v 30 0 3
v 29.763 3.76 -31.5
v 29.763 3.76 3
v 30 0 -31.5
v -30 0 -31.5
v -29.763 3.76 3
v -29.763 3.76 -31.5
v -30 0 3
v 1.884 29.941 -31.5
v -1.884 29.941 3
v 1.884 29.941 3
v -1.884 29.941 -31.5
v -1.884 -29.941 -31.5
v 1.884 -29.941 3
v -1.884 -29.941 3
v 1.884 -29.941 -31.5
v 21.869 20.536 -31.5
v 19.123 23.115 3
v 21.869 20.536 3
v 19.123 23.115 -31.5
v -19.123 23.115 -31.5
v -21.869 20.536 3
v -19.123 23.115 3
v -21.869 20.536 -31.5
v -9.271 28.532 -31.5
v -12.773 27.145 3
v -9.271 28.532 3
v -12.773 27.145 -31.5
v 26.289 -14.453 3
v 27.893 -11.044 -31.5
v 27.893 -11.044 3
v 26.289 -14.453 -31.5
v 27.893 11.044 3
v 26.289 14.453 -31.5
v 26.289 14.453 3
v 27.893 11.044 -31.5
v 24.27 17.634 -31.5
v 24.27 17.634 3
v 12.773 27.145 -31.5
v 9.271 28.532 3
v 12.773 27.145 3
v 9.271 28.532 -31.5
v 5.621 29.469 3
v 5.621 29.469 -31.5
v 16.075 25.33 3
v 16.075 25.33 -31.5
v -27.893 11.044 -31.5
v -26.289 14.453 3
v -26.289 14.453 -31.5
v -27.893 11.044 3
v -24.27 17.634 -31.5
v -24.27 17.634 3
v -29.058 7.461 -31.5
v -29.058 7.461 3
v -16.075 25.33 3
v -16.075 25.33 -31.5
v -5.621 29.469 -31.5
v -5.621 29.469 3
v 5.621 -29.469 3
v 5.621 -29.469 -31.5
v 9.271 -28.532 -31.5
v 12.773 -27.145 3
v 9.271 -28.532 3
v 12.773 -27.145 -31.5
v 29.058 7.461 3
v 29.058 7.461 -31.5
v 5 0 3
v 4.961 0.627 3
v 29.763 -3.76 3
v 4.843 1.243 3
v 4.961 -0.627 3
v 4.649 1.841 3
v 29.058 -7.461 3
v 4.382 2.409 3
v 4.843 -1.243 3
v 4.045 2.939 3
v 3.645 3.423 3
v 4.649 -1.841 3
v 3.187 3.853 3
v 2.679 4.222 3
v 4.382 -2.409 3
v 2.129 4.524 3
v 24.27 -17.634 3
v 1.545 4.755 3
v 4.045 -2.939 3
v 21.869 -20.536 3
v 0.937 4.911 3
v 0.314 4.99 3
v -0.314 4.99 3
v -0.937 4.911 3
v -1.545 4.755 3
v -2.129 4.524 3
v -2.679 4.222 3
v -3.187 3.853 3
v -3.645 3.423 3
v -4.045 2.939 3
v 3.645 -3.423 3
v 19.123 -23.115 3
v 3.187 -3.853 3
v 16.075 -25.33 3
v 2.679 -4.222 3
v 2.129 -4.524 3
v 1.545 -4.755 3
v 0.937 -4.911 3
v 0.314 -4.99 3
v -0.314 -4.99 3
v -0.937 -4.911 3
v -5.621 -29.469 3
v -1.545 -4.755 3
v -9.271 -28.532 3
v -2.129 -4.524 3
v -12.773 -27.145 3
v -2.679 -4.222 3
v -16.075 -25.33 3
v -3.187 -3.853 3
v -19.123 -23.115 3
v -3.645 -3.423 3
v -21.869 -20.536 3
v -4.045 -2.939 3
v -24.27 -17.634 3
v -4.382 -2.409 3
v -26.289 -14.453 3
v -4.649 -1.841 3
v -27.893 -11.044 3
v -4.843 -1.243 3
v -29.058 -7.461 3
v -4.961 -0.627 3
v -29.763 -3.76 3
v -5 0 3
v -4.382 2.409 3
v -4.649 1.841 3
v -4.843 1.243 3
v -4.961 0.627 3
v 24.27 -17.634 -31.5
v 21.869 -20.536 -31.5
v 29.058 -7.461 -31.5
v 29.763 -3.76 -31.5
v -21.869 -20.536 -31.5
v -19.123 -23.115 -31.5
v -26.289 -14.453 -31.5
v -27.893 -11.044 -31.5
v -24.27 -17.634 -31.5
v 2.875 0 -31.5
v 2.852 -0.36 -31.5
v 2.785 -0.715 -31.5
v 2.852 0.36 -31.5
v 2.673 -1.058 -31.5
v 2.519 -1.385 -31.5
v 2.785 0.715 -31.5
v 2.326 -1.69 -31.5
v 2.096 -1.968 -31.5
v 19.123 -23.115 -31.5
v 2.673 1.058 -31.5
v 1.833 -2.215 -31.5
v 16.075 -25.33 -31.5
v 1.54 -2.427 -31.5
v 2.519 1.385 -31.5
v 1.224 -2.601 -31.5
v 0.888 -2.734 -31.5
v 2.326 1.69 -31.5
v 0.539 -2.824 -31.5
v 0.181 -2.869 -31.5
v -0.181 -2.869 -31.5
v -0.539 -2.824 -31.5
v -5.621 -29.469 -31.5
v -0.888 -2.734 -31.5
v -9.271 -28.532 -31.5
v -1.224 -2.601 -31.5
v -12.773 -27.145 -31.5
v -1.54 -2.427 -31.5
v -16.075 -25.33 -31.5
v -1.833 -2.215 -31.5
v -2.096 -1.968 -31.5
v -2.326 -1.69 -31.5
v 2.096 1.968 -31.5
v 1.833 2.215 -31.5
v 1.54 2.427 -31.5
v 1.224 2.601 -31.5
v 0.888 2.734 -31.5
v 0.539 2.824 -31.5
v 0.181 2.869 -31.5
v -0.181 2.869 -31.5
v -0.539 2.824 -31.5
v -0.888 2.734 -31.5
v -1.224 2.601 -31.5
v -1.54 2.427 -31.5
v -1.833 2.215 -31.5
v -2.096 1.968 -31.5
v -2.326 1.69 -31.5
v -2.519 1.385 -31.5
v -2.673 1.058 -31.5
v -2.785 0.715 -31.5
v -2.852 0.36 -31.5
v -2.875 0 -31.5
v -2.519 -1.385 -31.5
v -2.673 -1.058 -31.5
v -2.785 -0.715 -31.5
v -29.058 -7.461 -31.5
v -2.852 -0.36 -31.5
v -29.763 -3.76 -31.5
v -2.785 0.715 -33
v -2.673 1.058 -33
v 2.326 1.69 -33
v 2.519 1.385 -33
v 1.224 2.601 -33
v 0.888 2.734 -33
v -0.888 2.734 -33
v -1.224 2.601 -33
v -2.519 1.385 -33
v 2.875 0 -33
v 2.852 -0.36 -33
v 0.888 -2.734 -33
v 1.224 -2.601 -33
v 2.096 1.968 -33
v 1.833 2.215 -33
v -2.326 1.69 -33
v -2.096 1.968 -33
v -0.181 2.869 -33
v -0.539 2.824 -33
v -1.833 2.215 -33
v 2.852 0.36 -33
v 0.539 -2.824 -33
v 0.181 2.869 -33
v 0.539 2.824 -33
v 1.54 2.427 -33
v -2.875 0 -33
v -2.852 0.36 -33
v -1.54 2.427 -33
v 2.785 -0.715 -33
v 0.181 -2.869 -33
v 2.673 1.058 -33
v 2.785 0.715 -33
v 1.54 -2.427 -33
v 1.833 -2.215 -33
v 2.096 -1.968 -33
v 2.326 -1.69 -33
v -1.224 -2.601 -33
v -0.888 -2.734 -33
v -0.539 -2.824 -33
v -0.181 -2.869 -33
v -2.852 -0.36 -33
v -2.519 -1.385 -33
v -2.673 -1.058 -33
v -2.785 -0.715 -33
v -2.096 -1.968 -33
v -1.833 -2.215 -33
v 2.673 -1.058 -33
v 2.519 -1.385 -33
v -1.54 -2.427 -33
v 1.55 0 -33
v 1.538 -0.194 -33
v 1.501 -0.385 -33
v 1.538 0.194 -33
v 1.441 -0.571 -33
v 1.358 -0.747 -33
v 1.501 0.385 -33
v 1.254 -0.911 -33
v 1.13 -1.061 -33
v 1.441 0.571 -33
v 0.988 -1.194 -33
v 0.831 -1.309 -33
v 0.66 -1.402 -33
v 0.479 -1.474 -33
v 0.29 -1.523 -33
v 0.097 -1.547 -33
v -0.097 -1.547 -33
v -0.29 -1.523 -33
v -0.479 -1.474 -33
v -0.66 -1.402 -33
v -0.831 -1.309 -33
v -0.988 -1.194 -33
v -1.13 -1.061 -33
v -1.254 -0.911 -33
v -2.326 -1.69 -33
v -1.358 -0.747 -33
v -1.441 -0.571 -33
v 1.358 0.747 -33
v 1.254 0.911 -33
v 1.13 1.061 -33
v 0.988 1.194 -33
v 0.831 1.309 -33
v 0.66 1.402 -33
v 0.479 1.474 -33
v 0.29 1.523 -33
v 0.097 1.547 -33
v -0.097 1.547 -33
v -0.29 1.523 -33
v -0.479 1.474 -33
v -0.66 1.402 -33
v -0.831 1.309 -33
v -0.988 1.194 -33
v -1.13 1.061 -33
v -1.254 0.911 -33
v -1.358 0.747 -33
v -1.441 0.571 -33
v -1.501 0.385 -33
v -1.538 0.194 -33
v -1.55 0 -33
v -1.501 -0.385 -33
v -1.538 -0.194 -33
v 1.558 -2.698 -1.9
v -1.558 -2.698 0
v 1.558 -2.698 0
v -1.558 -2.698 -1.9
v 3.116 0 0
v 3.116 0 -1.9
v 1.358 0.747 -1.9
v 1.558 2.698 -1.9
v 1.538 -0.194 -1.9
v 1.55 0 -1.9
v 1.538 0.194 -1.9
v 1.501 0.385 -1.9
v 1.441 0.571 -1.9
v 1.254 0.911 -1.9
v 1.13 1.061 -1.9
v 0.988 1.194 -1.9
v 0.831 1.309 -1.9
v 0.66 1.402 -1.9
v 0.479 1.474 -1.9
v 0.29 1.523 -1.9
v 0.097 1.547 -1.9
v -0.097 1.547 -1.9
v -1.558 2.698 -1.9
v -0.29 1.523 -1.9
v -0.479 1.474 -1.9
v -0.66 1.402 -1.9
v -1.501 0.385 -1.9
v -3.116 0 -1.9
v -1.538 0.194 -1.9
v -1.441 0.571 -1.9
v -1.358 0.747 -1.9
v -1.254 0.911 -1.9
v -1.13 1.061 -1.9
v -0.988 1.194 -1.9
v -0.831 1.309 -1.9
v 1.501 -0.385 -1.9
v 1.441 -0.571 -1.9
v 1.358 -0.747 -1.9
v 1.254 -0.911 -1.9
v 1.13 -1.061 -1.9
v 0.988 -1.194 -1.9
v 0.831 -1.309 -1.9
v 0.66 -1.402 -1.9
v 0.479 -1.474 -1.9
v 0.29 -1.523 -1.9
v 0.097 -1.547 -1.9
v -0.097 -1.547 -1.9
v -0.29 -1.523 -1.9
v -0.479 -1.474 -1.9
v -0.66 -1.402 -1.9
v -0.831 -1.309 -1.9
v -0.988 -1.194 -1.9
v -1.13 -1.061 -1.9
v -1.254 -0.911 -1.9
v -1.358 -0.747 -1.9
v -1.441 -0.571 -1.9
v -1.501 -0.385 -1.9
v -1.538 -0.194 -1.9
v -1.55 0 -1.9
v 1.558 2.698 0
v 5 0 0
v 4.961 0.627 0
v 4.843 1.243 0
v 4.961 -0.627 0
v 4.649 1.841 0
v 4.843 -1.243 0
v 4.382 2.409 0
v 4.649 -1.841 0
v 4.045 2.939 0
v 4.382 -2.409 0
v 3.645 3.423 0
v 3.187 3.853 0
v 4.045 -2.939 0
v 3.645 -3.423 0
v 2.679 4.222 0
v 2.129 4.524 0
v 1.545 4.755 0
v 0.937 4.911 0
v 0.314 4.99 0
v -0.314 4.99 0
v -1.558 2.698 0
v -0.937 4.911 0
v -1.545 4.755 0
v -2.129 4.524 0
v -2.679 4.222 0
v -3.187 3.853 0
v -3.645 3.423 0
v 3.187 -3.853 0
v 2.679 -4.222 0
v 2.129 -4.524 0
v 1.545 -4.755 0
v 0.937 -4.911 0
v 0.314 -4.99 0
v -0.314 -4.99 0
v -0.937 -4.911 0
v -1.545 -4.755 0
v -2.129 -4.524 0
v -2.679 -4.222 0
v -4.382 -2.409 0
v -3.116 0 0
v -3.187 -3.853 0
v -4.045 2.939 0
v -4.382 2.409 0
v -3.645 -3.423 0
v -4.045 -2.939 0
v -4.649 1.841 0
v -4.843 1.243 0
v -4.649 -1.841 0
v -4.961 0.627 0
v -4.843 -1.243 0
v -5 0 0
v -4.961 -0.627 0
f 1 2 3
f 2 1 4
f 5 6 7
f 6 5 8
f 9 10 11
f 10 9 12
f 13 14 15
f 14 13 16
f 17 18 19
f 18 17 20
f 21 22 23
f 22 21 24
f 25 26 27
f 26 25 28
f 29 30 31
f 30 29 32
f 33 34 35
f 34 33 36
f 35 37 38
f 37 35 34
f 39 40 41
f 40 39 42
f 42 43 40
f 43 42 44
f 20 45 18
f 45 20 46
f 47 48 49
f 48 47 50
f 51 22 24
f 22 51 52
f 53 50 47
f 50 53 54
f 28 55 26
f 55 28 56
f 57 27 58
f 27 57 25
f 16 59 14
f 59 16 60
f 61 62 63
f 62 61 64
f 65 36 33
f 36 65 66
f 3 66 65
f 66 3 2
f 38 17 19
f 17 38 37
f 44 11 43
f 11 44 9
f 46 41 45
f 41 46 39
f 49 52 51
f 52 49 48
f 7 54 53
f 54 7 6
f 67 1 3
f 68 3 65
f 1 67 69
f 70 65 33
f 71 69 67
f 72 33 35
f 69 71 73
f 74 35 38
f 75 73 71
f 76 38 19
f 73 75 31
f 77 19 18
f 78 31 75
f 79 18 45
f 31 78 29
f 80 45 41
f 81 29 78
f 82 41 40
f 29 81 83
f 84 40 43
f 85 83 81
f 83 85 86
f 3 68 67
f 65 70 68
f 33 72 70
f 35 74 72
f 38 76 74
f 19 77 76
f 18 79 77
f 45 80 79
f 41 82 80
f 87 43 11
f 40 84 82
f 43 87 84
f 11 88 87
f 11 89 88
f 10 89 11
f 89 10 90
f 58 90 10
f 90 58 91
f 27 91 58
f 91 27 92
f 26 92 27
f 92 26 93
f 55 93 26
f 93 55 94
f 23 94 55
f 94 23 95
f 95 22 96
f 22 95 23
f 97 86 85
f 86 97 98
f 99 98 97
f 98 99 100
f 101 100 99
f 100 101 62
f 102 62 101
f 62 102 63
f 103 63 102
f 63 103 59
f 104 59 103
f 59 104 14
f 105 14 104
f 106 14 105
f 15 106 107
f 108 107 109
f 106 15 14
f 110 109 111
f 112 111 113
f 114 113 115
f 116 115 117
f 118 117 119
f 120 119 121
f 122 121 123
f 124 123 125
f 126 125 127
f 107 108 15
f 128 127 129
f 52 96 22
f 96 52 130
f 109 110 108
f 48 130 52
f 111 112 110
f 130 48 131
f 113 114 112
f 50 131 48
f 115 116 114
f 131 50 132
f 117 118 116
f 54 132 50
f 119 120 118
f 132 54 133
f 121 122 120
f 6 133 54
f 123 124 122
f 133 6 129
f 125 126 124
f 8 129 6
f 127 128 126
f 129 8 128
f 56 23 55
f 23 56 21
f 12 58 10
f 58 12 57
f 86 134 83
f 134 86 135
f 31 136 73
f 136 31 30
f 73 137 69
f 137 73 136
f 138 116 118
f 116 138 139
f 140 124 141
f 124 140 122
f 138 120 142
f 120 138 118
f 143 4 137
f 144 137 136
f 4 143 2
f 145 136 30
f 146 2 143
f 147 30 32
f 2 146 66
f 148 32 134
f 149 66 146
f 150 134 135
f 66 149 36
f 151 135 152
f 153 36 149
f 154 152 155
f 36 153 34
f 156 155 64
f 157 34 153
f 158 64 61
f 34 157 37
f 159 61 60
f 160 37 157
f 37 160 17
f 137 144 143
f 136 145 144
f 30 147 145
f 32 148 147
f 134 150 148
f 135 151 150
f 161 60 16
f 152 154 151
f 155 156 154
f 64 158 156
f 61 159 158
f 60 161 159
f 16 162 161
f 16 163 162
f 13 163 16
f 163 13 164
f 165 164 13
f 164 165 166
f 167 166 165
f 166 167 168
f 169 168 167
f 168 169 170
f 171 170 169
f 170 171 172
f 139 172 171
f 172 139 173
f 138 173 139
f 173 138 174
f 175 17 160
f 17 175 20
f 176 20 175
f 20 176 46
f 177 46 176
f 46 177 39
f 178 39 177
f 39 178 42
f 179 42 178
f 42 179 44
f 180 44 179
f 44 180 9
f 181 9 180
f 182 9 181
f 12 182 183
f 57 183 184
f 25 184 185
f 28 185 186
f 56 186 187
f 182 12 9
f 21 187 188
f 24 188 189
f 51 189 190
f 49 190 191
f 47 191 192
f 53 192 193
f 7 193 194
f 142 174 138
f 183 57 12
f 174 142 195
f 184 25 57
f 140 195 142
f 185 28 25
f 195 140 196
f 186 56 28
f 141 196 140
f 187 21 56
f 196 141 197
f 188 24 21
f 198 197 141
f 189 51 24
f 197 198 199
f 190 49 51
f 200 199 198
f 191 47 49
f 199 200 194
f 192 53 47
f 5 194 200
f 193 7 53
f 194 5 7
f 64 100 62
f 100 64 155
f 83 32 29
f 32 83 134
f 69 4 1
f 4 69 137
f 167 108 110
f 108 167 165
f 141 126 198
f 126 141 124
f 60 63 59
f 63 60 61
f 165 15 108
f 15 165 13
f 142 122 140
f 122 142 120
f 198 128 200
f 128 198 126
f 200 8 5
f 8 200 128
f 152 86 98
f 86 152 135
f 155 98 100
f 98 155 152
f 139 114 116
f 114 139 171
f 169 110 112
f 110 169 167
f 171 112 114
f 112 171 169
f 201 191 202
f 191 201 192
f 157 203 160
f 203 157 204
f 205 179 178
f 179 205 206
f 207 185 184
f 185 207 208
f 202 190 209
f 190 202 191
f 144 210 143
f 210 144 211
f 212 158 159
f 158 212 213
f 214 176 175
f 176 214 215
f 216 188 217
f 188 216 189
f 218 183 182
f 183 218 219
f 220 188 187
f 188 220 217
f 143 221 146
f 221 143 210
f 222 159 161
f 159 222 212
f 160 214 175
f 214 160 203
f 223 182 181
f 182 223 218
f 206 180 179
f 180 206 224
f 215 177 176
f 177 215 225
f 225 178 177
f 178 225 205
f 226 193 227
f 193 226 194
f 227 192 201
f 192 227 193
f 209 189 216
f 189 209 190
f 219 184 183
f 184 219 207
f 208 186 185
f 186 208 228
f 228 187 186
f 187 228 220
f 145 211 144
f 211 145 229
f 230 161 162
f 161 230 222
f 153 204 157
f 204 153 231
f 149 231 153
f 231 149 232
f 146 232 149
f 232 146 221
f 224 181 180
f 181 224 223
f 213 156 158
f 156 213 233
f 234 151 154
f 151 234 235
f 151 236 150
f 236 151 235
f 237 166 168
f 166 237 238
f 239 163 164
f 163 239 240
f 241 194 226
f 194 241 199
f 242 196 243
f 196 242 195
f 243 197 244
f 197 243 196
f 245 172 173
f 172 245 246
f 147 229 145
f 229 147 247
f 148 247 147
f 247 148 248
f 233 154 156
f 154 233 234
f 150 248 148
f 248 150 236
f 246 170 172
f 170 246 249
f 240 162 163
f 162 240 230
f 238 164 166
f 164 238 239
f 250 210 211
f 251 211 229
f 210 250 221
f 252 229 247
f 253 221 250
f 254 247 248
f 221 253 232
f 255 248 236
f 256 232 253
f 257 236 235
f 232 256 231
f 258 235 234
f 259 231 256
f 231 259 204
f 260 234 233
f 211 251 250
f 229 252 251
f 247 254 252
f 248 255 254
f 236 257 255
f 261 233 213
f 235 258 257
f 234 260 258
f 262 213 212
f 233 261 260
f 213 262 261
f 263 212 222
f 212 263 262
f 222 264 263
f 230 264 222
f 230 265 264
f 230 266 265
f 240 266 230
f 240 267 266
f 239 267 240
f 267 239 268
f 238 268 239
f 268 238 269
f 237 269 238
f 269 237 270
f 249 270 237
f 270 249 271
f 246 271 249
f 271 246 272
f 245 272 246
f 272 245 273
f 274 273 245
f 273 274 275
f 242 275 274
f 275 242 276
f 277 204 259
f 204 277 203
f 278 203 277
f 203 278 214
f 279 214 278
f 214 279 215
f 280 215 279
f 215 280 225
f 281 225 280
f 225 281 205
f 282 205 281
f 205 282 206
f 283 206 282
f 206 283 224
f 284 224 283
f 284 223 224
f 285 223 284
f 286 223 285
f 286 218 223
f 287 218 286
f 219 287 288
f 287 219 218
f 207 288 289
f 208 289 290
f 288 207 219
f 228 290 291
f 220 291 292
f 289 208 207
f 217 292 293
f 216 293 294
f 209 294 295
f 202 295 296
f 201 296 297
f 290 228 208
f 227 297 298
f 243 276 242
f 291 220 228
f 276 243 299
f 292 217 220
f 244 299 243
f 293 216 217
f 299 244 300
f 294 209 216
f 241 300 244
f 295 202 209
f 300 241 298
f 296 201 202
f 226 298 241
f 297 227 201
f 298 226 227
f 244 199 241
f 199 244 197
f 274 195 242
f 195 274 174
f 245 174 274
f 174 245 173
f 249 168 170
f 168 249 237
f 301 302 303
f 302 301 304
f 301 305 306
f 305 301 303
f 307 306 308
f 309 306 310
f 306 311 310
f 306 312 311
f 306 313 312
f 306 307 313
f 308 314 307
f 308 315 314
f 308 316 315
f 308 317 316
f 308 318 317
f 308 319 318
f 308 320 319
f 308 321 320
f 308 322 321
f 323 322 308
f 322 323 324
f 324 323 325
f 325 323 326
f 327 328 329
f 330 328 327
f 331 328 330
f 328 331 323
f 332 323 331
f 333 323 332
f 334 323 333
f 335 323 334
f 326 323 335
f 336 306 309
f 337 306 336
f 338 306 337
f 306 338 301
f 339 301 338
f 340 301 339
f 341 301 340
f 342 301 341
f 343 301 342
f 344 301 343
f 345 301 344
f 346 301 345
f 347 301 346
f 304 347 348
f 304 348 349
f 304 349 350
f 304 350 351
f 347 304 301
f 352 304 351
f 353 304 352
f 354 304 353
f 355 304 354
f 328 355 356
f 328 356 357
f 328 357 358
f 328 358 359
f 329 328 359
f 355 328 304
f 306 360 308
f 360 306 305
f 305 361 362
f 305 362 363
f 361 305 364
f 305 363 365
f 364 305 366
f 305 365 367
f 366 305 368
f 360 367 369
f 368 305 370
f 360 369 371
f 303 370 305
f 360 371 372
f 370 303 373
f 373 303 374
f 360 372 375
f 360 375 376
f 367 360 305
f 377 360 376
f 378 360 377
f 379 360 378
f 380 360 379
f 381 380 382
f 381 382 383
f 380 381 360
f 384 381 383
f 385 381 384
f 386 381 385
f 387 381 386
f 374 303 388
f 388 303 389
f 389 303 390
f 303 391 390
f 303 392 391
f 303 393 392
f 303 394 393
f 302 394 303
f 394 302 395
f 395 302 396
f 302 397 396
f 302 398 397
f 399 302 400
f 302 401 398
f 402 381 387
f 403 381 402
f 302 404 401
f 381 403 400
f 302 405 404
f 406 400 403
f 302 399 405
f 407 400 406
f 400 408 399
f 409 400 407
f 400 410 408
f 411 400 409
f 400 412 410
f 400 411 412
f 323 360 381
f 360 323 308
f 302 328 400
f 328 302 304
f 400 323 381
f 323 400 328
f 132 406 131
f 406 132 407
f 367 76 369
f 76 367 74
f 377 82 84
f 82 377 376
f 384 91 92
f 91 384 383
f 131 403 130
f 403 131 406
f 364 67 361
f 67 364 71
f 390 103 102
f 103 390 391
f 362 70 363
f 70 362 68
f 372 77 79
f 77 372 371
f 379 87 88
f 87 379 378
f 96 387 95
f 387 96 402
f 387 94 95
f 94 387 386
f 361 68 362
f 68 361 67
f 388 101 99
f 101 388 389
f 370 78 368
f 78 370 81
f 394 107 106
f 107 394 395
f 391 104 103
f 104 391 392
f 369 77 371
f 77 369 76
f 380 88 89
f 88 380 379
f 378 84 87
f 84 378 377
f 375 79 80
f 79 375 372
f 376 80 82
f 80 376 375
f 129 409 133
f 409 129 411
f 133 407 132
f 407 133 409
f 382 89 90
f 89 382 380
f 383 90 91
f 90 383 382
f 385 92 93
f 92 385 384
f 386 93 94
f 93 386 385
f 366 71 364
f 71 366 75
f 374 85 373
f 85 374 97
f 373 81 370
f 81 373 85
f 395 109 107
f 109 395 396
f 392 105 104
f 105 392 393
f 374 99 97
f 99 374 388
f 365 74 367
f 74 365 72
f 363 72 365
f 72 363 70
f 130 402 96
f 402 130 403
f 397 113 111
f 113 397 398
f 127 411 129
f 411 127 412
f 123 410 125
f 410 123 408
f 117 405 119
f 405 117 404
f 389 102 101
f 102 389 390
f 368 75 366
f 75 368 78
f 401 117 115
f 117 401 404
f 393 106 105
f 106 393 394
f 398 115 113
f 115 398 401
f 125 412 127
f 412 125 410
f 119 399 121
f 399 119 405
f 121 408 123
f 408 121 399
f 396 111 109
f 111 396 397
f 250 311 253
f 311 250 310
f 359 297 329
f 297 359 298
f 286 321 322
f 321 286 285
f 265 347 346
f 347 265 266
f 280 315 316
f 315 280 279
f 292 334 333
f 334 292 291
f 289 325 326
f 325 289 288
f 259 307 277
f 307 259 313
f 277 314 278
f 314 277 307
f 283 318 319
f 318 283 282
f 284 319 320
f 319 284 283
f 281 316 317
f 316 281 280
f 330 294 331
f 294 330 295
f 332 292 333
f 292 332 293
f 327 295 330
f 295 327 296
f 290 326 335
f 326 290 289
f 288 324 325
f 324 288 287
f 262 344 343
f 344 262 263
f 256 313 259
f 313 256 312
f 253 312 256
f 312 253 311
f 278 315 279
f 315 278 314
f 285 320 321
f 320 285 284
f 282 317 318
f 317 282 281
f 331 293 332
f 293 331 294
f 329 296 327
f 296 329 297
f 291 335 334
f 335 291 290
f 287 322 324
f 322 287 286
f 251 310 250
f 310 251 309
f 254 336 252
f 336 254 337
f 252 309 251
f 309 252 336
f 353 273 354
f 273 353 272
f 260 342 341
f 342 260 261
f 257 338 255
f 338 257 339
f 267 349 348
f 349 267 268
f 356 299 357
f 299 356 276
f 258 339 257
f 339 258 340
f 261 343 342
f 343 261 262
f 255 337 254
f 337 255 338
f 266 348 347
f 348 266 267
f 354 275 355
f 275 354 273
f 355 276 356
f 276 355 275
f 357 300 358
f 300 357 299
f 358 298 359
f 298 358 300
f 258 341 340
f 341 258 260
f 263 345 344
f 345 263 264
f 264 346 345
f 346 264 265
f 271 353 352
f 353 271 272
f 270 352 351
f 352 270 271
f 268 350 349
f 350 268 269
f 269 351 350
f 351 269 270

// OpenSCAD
$fn = 50;


difference() {
	union() {
		translate(v = [0, 0, -31.5000000000]) {
			cylinder(h = 34.5000000000, r = 30.0000000000);
		}
		#translate(v = [0, 0, -33.0000000000]) {
			cylinder(h = 33, r = 2.8750000000);
		}
	}
	union() {
		translate(v = [0, 0, 0]) {
			rotate(a = [0, 0, 0]) {
				difference() {
					union() {
						translate(v = [0, 0, -1.9000000000]) {
							linear_extrude(height = 1.9000000000) {
								polygon(points = [[3.1158000000, 0.0000000000], [1.5579000000, 2.6983619531], [-1.5579000000, 2.6983619531], [-3.1158000000, 0.0000000000], [-1.5579000000, -2.6983619531], [1.5579000000, -2.6983619531]]);
							}
						}
					}
					union();
				}
			}
		}
		#cylinder(h = 3, r = 5.0000000000);
		#translate(v = [0, 0, -100.0000000000]) {
			cylinder(h = 200, r = 1.5500000000);
		}
	}
}
